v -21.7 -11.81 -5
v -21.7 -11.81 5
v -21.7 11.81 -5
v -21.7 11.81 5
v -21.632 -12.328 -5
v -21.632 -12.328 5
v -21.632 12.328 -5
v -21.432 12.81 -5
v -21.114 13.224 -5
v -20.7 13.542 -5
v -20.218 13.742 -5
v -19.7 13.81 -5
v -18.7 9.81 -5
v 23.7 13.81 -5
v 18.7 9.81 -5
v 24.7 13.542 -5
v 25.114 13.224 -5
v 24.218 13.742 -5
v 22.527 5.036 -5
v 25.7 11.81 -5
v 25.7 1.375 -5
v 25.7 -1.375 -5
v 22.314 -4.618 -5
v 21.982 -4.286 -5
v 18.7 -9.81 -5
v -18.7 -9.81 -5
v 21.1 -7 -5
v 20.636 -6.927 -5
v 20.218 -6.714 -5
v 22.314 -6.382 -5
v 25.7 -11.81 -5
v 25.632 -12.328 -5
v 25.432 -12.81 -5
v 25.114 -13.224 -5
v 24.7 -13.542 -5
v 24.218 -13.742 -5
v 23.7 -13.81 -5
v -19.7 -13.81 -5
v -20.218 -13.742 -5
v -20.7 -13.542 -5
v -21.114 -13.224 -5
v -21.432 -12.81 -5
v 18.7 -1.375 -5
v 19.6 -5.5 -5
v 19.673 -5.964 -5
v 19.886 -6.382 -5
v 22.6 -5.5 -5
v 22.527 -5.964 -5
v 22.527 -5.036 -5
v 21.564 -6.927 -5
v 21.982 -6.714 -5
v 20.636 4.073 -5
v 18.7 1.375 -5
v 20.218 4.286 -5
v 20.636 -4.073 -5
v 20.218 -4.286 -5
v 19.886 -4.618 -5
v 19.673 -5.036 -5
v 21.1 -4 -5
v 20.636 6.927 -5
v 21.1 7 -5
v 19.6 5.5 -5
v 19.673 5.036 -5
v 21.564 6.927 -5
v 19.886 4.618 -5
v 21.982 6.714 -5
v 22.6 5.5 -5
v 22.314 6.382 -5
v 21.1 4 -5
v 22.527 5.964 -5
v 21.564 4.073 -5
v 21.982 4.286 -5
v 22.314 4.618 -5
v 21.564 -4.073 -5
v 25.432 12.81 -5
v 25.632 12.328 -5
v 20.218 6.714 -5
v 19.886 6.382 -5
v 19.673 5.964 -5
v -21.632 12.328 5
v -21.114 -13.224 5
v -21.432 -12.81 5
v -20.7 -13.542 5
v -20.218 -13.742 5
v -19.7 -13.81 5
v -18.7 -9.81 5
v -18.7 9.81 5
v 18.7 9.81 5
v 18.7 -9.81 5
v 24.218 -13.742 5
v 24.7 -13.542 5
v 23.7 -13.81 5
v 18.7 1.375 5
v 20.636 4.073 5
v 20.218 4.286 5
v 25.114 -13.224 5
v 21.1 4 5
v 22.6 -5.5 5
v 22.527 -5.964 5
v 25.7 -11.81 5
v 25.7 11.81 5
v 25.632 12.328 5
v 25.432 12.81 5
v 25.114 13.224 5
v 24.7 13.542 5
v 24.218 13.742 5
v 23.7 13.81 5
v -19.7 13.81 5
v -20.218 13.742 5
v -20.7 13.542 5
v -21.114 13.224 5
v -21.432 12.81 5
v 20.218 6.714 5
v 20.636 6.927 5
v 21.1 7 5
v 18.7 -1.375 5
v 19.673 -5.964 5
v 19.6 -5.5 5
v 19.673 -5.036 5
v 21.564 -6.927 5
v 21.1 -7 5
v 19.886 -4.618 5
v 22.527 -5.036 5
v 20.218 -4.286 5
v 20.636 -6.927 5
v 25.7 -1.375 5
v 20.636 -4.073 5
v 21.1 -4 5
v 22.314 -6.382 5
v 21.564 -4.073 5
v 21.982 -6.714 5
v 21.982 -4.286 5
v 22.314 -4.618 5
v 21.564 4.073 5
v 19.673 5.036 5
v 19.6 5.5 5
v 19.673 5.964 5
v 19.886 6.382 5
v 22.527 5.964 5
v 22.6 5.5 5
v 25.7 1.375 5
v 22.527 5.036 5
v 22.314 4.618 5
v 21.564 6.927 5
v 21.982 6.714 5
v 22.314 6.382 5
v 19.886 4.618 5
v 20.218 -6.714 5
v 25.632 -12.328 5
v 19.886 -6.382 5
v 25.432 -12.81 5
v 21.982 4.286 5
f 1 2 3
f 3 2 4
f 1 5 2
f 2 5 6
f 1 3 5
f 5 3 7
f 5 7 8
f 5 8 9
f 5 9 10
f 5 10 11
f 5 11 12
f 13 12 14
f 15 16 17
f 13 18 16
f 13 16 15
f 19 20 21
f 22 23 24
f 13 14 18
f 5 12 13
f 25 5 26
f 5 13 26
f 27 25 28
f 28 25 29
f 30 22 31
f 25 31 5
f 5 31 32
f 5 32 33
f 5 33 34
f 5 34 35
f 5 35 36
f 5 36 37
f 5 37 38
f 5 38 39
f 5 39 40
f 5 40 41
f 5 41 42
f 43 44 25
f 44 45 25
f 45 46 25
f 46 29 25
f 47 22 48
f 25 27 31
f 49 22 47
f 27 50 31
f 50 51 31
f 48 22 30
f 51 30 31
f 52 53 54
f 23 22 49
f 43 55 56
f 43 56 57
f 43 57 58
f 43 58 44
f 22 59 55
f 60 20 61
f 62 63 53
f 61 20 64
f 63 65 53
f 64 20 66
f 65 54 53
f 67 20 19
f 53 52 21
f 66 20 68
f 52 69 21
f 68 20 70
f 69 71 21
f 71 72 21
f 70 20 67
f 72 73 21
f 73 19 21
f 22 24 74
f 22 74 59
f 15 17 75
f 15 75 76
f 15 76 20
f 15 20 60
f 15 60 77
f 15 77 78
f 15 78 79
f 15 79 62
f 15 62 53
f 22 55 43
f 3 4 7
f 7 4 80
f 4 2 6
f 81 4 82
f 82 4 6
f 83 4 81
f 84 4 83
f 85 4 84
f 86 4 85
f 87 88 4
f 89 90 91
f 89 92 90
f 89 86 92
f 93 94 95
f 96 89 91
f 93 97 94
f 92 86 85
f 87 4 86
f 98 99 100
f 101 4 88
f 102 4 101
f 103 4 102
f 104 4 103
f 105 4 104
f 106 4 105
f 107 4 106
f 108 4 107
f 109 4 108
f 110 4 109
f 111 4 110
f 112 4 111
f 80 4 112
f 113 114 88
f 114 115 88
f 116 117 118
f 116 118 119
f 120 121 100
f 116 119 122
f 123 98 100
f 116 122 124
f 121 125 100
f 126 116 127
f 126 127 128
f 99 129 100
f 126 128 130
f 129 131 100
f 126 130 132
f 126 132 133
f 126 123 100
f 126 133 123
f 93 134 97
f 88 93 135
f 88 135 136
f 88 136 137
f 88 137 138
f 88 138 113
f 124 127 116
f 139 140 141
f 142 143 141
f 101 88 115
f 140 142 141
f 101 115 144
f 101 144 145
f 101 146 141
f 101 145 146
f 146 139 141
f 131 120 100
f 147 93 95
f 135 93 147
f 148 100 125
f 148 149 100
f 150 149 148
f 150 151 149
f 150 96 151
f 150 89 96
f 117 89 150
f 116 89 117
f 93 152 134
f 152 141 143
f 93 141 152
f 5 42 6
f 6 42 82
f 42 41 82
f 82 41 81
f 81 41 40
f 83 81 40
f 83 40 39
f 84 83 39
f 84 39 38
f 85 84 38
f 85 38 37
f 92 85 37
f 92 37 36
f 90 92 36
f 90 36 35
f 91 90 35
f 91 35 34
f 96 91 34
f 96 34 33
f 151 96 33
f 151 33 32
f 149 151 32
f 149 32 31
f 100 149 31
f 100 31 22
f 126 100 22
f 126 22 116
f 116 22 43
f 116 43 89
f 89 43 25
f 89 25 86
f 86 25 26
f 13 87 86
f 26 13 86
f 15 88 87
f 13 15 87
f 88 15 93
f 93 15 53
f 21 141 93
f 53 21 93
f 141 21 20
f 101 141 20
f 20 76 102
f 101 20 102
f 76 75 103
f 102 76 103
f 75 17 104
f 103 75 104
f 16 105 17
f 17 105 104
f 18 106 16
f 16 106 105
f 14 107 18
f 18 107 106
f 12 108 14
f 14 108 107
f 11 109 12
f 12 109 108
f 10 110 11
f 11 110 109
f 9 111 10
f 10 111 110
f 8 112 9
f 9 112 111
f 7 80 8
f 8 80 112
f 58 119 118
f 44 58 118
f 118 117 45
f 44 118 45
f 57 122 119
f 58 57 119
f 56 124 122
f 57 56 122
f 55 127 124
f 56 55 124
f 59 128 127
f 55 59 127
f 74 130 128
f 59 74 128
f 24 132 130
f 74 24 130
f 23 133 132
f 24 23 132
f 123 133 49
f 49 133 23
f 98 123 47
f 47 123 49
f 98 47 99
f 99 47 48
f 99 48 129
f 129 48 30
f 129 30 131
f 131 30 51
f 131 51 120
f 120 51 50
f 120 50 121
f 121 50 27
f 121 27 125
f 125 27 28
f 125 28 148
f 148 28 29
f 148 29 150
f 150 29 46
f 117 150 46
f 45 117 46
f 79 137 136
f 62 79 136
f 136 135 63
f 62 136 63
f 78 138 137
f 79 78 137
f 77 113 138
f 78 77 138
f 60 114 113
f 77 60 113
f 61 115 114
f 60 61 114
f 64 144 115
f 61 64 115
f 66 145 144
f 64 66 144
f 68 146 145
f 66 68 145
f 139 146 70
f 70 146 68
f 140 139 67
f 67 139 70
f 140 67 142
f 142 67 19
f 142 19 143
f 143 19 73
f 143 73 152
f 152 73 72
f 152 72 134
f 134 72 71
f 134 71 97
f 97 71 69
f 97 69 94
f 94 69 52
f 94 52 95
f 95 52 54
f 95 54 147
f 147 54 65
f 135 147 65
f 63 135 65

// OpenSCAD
// file: obiscad/bcube.scad
//------------------------------------------------------------------------------
//  Bevel edge cube.
//  (c) Juan Gonzalez-Gomez (Obijuan), Sep-2012
//------------------------------------------------------------------------------

//----------------- IMPLEMENTATION USING THE MINKOWSKI OPERATOR ----------------

//------------------------------------------------------------------------------
//-- Bevel Cube main function
//-- Parameters:
//--   * Size:  Cube size
//--   * cr : Corner radius (if cr==0, a standar cube is built)
//--   * cres:  Corner resolution (in points). cres=0 means flat corners
//------------------------------------------------------------------------------
module bcube(size,cr=0,cres=0)
{
  //-- Internal cube size
  bsize = size - 2*[cr,cr,0];

  //-- Get the (x,y) coorner coordinates in the 1st cuadrant
  x = bsize[0]/2;
  y = bsize[1]/2;

  //-- A corner radius of 0 means a standar cube!
  if (cr==0)
    cube(bsize,center=true);
  else {

      
      //-- The height of minkowski object is double. So
      //-- we sould scale by 0.5
      scale([1,1,0.5])

      //-- This translation is for centering the minkowski objet
      translate([-x, -y,0])

      //-- Built the  beveled cube with minkowski
      minkowski() {

        //-- Internal cube
        cube(bsize,center=true);

        //-- Cylinder in the corner (1st cuadrant)
        translate([x,y, 0])
          cylinder(r=cr, h=bsize[2],center=true, $fn=4*(cres+1));
      }
  }

}


//-- Examples of use of the bcube() module

//-- Standar cube
translate([-15,15,0])
bcube([20,20,10]);

//-- Beveled cube (0 point resolution)
translate([15,15,0])
  bcube([20,20,10],cr=4);

//-- Beveled cube (1 point resolution)
translate([-15,-15,0])
  bcube([20,20,10],cr=4, cres=1);

//-- Beveled cube (4 points resolution)
translate([15,-15,0])
  bcube([20,20,10],cr=4, cres=4);
// main file
// Travel Servo Holder for the PrintrCamBot by Carlosgs (http://carlosgs.es)

use <obiscad/bcube.scad>

servo_h = 37+0.4;
servo_w = 19.22+0.4;

holder_w = 10;

holder_thickness = 7;

base_truncation = holder_thickness-3;
side_truncation = holder_thickness-4;

screwOffset = 2.4;

screwDistFromOrig = servo_h/2+screwOffset;
screwSupport_h = 5;

screwDist = 10+1;// We add a millimiter to increase tension, and thus have a better grip on the servo

screwDiam = 3;

module screws() {
	translate([0,screwDist/2,0]) {
		cylinder(r=screwDiam/2,h=100,center=true,$fn=20);
	}
	translate([0,-screwDist/2,0]) {
		cylinder(r=screwDiam/2,h=100,center=true,$fn=20);
	}
}

difference() {
	translate([base_truncation/2,0,0])
		bcube([servo_h+holder_thickness*2-base_truncation,servo_w+holder_thickness*2-side_truncation*2,holder_w],cr=2,cres=5);
	cube([servo_h,servo_w,holder_w*2],center=true);
	translate([screwDistFromOrig,0,0]) screws();
	translate([screwDistFromOrig,0,0]) cube([servo_h,screwDist/4,holder_w*2],center=true);
}
